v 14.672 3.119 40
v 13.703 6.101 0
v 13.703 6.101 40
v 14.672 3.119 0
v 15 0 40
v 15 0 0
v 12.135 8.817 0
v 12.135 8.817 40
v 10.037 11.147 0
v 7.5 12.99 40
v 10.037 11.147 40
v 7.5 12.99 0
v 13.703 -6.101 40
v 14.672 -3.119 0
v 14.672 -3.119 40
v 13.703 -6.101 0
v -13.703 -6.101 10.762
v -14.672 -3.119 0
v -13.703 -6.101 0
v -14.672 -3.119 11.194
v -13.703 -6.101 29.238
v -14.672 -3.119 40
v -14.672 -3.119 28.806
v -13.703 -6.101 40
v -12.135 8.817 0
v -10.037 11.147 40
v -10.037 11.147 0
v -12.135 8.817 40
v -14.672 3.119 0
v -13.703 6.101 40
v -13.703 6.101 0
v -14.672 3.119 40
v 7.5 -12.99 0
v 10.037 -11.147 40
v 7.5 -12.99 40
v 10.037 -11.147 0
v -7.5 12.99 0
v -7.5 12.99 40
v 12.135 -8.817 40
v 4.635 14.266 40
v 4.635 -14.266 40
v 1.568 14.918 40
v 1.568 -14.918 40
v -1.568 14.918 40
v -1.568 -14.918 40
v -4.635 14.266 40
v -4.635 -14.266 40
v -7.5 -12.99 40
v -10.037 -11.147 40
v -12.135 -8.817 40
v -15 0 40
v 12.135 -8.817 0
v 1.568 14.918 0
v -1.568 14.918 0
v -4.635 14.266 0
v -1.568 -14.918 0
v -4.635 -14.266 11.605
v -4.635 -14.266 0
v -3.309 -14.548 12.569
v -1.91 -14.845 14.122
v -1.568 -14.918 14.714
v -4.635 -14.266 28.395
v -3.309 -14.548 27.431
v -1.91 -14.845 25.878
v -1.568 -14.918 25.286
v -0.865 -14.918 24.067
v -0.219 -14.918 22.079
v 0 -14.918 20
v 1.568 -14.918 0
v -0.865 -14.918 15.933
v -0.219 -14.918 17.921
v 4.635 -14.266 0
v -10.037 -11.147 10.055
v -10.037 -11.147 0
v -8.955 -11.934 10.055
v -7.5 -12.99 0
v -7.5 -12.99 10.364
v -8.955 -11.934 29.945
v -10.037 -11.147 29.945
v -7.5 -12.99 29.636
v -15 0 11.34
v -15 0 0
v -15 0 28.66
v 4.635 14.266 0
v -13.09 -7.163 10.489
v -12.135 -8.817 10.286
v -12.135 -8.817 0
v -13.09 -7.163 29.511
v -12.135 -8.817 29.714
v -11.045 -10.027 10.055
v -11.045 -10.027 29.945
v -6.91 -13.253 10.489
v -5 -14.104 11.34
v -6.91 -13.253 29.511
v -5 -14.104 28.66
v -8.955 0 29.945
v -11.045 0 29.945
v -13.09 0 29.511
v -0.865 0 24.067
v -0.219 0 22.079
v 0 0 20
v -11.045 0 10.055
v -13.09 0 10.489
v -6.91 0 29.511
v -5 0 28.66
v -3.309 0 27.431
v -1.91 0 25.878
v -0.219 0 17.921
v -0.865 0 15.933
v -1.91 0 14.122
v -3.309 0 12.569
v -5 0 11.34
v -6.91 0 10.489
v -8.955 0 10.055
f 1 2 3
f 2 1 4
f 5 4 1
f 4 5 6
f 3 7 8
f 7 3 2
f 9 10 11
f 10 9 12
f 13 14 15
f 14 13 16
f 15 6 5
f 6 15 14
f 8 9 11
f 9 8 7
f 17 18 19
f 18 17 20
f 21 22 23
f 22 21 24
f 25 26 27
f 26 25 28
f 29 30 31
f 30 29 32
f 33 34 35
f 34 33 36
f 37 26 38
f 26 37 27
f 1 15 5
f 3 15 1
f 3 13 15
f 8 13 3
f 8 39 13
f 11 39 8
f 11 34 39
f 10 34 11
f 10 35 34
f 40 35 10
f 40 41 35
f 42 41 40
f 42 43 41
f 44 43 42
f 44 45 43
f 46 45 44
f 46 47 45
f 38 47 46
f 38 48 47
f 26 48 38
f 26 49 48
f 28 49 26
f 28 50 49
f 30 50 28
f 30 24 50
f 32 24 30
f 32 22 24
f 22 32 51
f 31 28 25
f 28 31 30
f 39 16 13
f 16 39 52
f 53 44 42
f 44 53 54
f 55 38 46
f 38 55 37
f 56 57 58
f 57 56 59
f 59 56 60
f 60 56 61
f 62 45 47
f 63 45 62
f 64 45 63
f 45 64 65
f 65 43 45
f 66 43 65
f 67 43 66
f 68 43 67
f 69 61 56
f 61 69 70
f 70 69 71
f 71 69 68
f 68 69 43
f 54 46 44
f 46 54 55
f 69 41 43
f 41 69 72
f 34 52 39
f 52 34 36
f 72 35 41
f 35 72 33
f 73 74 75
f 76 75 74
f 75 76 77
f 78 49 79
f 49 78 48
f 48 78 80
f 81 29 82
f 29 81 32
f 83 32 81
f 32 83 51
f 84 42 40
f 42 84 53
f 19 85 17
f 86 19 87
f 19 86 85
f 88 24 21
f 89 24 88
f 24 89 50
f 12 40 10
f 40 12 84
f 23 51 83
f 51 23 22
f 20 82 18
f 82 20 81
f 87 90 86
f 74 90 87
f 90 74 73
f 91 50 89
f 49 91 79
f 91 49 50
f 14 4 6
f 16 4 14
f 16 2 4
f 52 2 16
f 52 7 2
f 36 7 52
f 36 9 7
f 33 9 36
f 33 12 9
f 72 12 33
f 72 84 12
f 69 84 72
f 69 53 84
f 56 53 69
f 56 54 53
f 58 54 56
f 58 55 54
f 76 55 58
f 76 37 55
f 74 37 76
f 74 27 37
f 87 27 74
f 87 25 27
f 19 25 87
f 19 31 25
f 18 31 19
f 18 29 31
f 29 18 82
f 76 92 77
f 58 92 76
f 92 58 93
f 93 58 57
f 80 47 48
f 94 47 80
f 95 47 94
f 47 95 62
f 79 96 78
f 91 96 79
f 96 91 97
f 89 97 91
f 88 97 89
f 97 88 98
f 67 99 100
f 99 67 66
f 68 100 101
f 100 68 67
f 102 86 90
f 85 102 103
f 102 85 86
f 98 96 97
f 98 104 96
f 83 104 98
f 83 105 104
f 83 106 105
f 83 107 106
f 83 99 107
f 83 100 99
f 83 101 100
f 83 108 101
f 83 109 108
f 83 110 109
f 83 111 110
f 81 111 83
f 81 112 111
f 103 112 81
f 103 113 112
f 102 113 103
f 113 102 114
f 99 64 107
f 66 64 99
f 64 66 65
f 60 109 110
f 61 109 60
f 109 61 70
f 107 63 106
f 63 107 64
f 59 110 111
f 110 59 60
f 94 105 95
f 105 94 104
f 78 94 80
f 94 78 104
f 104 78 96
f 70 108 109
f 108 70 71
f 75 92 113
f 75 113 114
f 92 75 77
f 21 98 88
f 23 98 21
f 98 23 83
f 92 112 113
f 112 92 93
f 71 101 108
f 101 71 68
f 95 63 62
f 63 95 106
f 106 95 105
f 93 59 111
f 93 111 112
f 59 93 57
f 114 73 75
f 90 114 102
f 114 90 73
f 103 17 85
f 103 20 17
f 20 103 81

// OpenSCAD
module main_object() {
    difference() {
        union() {
            // Main cylinder
            cylinder(h = 40, r = 15);
            
            // Horizontal rectangular prism extending outwards
            translate([0, 0, 20]) cube([15, 15, 20], center = true);
        }
        
        // Rounded cut (subtraction)
        translate([-10, 0, 20])
        rotate([90, 0, 0])
        cylinder(h = 40, r = 10);
    }
}

main_object();
